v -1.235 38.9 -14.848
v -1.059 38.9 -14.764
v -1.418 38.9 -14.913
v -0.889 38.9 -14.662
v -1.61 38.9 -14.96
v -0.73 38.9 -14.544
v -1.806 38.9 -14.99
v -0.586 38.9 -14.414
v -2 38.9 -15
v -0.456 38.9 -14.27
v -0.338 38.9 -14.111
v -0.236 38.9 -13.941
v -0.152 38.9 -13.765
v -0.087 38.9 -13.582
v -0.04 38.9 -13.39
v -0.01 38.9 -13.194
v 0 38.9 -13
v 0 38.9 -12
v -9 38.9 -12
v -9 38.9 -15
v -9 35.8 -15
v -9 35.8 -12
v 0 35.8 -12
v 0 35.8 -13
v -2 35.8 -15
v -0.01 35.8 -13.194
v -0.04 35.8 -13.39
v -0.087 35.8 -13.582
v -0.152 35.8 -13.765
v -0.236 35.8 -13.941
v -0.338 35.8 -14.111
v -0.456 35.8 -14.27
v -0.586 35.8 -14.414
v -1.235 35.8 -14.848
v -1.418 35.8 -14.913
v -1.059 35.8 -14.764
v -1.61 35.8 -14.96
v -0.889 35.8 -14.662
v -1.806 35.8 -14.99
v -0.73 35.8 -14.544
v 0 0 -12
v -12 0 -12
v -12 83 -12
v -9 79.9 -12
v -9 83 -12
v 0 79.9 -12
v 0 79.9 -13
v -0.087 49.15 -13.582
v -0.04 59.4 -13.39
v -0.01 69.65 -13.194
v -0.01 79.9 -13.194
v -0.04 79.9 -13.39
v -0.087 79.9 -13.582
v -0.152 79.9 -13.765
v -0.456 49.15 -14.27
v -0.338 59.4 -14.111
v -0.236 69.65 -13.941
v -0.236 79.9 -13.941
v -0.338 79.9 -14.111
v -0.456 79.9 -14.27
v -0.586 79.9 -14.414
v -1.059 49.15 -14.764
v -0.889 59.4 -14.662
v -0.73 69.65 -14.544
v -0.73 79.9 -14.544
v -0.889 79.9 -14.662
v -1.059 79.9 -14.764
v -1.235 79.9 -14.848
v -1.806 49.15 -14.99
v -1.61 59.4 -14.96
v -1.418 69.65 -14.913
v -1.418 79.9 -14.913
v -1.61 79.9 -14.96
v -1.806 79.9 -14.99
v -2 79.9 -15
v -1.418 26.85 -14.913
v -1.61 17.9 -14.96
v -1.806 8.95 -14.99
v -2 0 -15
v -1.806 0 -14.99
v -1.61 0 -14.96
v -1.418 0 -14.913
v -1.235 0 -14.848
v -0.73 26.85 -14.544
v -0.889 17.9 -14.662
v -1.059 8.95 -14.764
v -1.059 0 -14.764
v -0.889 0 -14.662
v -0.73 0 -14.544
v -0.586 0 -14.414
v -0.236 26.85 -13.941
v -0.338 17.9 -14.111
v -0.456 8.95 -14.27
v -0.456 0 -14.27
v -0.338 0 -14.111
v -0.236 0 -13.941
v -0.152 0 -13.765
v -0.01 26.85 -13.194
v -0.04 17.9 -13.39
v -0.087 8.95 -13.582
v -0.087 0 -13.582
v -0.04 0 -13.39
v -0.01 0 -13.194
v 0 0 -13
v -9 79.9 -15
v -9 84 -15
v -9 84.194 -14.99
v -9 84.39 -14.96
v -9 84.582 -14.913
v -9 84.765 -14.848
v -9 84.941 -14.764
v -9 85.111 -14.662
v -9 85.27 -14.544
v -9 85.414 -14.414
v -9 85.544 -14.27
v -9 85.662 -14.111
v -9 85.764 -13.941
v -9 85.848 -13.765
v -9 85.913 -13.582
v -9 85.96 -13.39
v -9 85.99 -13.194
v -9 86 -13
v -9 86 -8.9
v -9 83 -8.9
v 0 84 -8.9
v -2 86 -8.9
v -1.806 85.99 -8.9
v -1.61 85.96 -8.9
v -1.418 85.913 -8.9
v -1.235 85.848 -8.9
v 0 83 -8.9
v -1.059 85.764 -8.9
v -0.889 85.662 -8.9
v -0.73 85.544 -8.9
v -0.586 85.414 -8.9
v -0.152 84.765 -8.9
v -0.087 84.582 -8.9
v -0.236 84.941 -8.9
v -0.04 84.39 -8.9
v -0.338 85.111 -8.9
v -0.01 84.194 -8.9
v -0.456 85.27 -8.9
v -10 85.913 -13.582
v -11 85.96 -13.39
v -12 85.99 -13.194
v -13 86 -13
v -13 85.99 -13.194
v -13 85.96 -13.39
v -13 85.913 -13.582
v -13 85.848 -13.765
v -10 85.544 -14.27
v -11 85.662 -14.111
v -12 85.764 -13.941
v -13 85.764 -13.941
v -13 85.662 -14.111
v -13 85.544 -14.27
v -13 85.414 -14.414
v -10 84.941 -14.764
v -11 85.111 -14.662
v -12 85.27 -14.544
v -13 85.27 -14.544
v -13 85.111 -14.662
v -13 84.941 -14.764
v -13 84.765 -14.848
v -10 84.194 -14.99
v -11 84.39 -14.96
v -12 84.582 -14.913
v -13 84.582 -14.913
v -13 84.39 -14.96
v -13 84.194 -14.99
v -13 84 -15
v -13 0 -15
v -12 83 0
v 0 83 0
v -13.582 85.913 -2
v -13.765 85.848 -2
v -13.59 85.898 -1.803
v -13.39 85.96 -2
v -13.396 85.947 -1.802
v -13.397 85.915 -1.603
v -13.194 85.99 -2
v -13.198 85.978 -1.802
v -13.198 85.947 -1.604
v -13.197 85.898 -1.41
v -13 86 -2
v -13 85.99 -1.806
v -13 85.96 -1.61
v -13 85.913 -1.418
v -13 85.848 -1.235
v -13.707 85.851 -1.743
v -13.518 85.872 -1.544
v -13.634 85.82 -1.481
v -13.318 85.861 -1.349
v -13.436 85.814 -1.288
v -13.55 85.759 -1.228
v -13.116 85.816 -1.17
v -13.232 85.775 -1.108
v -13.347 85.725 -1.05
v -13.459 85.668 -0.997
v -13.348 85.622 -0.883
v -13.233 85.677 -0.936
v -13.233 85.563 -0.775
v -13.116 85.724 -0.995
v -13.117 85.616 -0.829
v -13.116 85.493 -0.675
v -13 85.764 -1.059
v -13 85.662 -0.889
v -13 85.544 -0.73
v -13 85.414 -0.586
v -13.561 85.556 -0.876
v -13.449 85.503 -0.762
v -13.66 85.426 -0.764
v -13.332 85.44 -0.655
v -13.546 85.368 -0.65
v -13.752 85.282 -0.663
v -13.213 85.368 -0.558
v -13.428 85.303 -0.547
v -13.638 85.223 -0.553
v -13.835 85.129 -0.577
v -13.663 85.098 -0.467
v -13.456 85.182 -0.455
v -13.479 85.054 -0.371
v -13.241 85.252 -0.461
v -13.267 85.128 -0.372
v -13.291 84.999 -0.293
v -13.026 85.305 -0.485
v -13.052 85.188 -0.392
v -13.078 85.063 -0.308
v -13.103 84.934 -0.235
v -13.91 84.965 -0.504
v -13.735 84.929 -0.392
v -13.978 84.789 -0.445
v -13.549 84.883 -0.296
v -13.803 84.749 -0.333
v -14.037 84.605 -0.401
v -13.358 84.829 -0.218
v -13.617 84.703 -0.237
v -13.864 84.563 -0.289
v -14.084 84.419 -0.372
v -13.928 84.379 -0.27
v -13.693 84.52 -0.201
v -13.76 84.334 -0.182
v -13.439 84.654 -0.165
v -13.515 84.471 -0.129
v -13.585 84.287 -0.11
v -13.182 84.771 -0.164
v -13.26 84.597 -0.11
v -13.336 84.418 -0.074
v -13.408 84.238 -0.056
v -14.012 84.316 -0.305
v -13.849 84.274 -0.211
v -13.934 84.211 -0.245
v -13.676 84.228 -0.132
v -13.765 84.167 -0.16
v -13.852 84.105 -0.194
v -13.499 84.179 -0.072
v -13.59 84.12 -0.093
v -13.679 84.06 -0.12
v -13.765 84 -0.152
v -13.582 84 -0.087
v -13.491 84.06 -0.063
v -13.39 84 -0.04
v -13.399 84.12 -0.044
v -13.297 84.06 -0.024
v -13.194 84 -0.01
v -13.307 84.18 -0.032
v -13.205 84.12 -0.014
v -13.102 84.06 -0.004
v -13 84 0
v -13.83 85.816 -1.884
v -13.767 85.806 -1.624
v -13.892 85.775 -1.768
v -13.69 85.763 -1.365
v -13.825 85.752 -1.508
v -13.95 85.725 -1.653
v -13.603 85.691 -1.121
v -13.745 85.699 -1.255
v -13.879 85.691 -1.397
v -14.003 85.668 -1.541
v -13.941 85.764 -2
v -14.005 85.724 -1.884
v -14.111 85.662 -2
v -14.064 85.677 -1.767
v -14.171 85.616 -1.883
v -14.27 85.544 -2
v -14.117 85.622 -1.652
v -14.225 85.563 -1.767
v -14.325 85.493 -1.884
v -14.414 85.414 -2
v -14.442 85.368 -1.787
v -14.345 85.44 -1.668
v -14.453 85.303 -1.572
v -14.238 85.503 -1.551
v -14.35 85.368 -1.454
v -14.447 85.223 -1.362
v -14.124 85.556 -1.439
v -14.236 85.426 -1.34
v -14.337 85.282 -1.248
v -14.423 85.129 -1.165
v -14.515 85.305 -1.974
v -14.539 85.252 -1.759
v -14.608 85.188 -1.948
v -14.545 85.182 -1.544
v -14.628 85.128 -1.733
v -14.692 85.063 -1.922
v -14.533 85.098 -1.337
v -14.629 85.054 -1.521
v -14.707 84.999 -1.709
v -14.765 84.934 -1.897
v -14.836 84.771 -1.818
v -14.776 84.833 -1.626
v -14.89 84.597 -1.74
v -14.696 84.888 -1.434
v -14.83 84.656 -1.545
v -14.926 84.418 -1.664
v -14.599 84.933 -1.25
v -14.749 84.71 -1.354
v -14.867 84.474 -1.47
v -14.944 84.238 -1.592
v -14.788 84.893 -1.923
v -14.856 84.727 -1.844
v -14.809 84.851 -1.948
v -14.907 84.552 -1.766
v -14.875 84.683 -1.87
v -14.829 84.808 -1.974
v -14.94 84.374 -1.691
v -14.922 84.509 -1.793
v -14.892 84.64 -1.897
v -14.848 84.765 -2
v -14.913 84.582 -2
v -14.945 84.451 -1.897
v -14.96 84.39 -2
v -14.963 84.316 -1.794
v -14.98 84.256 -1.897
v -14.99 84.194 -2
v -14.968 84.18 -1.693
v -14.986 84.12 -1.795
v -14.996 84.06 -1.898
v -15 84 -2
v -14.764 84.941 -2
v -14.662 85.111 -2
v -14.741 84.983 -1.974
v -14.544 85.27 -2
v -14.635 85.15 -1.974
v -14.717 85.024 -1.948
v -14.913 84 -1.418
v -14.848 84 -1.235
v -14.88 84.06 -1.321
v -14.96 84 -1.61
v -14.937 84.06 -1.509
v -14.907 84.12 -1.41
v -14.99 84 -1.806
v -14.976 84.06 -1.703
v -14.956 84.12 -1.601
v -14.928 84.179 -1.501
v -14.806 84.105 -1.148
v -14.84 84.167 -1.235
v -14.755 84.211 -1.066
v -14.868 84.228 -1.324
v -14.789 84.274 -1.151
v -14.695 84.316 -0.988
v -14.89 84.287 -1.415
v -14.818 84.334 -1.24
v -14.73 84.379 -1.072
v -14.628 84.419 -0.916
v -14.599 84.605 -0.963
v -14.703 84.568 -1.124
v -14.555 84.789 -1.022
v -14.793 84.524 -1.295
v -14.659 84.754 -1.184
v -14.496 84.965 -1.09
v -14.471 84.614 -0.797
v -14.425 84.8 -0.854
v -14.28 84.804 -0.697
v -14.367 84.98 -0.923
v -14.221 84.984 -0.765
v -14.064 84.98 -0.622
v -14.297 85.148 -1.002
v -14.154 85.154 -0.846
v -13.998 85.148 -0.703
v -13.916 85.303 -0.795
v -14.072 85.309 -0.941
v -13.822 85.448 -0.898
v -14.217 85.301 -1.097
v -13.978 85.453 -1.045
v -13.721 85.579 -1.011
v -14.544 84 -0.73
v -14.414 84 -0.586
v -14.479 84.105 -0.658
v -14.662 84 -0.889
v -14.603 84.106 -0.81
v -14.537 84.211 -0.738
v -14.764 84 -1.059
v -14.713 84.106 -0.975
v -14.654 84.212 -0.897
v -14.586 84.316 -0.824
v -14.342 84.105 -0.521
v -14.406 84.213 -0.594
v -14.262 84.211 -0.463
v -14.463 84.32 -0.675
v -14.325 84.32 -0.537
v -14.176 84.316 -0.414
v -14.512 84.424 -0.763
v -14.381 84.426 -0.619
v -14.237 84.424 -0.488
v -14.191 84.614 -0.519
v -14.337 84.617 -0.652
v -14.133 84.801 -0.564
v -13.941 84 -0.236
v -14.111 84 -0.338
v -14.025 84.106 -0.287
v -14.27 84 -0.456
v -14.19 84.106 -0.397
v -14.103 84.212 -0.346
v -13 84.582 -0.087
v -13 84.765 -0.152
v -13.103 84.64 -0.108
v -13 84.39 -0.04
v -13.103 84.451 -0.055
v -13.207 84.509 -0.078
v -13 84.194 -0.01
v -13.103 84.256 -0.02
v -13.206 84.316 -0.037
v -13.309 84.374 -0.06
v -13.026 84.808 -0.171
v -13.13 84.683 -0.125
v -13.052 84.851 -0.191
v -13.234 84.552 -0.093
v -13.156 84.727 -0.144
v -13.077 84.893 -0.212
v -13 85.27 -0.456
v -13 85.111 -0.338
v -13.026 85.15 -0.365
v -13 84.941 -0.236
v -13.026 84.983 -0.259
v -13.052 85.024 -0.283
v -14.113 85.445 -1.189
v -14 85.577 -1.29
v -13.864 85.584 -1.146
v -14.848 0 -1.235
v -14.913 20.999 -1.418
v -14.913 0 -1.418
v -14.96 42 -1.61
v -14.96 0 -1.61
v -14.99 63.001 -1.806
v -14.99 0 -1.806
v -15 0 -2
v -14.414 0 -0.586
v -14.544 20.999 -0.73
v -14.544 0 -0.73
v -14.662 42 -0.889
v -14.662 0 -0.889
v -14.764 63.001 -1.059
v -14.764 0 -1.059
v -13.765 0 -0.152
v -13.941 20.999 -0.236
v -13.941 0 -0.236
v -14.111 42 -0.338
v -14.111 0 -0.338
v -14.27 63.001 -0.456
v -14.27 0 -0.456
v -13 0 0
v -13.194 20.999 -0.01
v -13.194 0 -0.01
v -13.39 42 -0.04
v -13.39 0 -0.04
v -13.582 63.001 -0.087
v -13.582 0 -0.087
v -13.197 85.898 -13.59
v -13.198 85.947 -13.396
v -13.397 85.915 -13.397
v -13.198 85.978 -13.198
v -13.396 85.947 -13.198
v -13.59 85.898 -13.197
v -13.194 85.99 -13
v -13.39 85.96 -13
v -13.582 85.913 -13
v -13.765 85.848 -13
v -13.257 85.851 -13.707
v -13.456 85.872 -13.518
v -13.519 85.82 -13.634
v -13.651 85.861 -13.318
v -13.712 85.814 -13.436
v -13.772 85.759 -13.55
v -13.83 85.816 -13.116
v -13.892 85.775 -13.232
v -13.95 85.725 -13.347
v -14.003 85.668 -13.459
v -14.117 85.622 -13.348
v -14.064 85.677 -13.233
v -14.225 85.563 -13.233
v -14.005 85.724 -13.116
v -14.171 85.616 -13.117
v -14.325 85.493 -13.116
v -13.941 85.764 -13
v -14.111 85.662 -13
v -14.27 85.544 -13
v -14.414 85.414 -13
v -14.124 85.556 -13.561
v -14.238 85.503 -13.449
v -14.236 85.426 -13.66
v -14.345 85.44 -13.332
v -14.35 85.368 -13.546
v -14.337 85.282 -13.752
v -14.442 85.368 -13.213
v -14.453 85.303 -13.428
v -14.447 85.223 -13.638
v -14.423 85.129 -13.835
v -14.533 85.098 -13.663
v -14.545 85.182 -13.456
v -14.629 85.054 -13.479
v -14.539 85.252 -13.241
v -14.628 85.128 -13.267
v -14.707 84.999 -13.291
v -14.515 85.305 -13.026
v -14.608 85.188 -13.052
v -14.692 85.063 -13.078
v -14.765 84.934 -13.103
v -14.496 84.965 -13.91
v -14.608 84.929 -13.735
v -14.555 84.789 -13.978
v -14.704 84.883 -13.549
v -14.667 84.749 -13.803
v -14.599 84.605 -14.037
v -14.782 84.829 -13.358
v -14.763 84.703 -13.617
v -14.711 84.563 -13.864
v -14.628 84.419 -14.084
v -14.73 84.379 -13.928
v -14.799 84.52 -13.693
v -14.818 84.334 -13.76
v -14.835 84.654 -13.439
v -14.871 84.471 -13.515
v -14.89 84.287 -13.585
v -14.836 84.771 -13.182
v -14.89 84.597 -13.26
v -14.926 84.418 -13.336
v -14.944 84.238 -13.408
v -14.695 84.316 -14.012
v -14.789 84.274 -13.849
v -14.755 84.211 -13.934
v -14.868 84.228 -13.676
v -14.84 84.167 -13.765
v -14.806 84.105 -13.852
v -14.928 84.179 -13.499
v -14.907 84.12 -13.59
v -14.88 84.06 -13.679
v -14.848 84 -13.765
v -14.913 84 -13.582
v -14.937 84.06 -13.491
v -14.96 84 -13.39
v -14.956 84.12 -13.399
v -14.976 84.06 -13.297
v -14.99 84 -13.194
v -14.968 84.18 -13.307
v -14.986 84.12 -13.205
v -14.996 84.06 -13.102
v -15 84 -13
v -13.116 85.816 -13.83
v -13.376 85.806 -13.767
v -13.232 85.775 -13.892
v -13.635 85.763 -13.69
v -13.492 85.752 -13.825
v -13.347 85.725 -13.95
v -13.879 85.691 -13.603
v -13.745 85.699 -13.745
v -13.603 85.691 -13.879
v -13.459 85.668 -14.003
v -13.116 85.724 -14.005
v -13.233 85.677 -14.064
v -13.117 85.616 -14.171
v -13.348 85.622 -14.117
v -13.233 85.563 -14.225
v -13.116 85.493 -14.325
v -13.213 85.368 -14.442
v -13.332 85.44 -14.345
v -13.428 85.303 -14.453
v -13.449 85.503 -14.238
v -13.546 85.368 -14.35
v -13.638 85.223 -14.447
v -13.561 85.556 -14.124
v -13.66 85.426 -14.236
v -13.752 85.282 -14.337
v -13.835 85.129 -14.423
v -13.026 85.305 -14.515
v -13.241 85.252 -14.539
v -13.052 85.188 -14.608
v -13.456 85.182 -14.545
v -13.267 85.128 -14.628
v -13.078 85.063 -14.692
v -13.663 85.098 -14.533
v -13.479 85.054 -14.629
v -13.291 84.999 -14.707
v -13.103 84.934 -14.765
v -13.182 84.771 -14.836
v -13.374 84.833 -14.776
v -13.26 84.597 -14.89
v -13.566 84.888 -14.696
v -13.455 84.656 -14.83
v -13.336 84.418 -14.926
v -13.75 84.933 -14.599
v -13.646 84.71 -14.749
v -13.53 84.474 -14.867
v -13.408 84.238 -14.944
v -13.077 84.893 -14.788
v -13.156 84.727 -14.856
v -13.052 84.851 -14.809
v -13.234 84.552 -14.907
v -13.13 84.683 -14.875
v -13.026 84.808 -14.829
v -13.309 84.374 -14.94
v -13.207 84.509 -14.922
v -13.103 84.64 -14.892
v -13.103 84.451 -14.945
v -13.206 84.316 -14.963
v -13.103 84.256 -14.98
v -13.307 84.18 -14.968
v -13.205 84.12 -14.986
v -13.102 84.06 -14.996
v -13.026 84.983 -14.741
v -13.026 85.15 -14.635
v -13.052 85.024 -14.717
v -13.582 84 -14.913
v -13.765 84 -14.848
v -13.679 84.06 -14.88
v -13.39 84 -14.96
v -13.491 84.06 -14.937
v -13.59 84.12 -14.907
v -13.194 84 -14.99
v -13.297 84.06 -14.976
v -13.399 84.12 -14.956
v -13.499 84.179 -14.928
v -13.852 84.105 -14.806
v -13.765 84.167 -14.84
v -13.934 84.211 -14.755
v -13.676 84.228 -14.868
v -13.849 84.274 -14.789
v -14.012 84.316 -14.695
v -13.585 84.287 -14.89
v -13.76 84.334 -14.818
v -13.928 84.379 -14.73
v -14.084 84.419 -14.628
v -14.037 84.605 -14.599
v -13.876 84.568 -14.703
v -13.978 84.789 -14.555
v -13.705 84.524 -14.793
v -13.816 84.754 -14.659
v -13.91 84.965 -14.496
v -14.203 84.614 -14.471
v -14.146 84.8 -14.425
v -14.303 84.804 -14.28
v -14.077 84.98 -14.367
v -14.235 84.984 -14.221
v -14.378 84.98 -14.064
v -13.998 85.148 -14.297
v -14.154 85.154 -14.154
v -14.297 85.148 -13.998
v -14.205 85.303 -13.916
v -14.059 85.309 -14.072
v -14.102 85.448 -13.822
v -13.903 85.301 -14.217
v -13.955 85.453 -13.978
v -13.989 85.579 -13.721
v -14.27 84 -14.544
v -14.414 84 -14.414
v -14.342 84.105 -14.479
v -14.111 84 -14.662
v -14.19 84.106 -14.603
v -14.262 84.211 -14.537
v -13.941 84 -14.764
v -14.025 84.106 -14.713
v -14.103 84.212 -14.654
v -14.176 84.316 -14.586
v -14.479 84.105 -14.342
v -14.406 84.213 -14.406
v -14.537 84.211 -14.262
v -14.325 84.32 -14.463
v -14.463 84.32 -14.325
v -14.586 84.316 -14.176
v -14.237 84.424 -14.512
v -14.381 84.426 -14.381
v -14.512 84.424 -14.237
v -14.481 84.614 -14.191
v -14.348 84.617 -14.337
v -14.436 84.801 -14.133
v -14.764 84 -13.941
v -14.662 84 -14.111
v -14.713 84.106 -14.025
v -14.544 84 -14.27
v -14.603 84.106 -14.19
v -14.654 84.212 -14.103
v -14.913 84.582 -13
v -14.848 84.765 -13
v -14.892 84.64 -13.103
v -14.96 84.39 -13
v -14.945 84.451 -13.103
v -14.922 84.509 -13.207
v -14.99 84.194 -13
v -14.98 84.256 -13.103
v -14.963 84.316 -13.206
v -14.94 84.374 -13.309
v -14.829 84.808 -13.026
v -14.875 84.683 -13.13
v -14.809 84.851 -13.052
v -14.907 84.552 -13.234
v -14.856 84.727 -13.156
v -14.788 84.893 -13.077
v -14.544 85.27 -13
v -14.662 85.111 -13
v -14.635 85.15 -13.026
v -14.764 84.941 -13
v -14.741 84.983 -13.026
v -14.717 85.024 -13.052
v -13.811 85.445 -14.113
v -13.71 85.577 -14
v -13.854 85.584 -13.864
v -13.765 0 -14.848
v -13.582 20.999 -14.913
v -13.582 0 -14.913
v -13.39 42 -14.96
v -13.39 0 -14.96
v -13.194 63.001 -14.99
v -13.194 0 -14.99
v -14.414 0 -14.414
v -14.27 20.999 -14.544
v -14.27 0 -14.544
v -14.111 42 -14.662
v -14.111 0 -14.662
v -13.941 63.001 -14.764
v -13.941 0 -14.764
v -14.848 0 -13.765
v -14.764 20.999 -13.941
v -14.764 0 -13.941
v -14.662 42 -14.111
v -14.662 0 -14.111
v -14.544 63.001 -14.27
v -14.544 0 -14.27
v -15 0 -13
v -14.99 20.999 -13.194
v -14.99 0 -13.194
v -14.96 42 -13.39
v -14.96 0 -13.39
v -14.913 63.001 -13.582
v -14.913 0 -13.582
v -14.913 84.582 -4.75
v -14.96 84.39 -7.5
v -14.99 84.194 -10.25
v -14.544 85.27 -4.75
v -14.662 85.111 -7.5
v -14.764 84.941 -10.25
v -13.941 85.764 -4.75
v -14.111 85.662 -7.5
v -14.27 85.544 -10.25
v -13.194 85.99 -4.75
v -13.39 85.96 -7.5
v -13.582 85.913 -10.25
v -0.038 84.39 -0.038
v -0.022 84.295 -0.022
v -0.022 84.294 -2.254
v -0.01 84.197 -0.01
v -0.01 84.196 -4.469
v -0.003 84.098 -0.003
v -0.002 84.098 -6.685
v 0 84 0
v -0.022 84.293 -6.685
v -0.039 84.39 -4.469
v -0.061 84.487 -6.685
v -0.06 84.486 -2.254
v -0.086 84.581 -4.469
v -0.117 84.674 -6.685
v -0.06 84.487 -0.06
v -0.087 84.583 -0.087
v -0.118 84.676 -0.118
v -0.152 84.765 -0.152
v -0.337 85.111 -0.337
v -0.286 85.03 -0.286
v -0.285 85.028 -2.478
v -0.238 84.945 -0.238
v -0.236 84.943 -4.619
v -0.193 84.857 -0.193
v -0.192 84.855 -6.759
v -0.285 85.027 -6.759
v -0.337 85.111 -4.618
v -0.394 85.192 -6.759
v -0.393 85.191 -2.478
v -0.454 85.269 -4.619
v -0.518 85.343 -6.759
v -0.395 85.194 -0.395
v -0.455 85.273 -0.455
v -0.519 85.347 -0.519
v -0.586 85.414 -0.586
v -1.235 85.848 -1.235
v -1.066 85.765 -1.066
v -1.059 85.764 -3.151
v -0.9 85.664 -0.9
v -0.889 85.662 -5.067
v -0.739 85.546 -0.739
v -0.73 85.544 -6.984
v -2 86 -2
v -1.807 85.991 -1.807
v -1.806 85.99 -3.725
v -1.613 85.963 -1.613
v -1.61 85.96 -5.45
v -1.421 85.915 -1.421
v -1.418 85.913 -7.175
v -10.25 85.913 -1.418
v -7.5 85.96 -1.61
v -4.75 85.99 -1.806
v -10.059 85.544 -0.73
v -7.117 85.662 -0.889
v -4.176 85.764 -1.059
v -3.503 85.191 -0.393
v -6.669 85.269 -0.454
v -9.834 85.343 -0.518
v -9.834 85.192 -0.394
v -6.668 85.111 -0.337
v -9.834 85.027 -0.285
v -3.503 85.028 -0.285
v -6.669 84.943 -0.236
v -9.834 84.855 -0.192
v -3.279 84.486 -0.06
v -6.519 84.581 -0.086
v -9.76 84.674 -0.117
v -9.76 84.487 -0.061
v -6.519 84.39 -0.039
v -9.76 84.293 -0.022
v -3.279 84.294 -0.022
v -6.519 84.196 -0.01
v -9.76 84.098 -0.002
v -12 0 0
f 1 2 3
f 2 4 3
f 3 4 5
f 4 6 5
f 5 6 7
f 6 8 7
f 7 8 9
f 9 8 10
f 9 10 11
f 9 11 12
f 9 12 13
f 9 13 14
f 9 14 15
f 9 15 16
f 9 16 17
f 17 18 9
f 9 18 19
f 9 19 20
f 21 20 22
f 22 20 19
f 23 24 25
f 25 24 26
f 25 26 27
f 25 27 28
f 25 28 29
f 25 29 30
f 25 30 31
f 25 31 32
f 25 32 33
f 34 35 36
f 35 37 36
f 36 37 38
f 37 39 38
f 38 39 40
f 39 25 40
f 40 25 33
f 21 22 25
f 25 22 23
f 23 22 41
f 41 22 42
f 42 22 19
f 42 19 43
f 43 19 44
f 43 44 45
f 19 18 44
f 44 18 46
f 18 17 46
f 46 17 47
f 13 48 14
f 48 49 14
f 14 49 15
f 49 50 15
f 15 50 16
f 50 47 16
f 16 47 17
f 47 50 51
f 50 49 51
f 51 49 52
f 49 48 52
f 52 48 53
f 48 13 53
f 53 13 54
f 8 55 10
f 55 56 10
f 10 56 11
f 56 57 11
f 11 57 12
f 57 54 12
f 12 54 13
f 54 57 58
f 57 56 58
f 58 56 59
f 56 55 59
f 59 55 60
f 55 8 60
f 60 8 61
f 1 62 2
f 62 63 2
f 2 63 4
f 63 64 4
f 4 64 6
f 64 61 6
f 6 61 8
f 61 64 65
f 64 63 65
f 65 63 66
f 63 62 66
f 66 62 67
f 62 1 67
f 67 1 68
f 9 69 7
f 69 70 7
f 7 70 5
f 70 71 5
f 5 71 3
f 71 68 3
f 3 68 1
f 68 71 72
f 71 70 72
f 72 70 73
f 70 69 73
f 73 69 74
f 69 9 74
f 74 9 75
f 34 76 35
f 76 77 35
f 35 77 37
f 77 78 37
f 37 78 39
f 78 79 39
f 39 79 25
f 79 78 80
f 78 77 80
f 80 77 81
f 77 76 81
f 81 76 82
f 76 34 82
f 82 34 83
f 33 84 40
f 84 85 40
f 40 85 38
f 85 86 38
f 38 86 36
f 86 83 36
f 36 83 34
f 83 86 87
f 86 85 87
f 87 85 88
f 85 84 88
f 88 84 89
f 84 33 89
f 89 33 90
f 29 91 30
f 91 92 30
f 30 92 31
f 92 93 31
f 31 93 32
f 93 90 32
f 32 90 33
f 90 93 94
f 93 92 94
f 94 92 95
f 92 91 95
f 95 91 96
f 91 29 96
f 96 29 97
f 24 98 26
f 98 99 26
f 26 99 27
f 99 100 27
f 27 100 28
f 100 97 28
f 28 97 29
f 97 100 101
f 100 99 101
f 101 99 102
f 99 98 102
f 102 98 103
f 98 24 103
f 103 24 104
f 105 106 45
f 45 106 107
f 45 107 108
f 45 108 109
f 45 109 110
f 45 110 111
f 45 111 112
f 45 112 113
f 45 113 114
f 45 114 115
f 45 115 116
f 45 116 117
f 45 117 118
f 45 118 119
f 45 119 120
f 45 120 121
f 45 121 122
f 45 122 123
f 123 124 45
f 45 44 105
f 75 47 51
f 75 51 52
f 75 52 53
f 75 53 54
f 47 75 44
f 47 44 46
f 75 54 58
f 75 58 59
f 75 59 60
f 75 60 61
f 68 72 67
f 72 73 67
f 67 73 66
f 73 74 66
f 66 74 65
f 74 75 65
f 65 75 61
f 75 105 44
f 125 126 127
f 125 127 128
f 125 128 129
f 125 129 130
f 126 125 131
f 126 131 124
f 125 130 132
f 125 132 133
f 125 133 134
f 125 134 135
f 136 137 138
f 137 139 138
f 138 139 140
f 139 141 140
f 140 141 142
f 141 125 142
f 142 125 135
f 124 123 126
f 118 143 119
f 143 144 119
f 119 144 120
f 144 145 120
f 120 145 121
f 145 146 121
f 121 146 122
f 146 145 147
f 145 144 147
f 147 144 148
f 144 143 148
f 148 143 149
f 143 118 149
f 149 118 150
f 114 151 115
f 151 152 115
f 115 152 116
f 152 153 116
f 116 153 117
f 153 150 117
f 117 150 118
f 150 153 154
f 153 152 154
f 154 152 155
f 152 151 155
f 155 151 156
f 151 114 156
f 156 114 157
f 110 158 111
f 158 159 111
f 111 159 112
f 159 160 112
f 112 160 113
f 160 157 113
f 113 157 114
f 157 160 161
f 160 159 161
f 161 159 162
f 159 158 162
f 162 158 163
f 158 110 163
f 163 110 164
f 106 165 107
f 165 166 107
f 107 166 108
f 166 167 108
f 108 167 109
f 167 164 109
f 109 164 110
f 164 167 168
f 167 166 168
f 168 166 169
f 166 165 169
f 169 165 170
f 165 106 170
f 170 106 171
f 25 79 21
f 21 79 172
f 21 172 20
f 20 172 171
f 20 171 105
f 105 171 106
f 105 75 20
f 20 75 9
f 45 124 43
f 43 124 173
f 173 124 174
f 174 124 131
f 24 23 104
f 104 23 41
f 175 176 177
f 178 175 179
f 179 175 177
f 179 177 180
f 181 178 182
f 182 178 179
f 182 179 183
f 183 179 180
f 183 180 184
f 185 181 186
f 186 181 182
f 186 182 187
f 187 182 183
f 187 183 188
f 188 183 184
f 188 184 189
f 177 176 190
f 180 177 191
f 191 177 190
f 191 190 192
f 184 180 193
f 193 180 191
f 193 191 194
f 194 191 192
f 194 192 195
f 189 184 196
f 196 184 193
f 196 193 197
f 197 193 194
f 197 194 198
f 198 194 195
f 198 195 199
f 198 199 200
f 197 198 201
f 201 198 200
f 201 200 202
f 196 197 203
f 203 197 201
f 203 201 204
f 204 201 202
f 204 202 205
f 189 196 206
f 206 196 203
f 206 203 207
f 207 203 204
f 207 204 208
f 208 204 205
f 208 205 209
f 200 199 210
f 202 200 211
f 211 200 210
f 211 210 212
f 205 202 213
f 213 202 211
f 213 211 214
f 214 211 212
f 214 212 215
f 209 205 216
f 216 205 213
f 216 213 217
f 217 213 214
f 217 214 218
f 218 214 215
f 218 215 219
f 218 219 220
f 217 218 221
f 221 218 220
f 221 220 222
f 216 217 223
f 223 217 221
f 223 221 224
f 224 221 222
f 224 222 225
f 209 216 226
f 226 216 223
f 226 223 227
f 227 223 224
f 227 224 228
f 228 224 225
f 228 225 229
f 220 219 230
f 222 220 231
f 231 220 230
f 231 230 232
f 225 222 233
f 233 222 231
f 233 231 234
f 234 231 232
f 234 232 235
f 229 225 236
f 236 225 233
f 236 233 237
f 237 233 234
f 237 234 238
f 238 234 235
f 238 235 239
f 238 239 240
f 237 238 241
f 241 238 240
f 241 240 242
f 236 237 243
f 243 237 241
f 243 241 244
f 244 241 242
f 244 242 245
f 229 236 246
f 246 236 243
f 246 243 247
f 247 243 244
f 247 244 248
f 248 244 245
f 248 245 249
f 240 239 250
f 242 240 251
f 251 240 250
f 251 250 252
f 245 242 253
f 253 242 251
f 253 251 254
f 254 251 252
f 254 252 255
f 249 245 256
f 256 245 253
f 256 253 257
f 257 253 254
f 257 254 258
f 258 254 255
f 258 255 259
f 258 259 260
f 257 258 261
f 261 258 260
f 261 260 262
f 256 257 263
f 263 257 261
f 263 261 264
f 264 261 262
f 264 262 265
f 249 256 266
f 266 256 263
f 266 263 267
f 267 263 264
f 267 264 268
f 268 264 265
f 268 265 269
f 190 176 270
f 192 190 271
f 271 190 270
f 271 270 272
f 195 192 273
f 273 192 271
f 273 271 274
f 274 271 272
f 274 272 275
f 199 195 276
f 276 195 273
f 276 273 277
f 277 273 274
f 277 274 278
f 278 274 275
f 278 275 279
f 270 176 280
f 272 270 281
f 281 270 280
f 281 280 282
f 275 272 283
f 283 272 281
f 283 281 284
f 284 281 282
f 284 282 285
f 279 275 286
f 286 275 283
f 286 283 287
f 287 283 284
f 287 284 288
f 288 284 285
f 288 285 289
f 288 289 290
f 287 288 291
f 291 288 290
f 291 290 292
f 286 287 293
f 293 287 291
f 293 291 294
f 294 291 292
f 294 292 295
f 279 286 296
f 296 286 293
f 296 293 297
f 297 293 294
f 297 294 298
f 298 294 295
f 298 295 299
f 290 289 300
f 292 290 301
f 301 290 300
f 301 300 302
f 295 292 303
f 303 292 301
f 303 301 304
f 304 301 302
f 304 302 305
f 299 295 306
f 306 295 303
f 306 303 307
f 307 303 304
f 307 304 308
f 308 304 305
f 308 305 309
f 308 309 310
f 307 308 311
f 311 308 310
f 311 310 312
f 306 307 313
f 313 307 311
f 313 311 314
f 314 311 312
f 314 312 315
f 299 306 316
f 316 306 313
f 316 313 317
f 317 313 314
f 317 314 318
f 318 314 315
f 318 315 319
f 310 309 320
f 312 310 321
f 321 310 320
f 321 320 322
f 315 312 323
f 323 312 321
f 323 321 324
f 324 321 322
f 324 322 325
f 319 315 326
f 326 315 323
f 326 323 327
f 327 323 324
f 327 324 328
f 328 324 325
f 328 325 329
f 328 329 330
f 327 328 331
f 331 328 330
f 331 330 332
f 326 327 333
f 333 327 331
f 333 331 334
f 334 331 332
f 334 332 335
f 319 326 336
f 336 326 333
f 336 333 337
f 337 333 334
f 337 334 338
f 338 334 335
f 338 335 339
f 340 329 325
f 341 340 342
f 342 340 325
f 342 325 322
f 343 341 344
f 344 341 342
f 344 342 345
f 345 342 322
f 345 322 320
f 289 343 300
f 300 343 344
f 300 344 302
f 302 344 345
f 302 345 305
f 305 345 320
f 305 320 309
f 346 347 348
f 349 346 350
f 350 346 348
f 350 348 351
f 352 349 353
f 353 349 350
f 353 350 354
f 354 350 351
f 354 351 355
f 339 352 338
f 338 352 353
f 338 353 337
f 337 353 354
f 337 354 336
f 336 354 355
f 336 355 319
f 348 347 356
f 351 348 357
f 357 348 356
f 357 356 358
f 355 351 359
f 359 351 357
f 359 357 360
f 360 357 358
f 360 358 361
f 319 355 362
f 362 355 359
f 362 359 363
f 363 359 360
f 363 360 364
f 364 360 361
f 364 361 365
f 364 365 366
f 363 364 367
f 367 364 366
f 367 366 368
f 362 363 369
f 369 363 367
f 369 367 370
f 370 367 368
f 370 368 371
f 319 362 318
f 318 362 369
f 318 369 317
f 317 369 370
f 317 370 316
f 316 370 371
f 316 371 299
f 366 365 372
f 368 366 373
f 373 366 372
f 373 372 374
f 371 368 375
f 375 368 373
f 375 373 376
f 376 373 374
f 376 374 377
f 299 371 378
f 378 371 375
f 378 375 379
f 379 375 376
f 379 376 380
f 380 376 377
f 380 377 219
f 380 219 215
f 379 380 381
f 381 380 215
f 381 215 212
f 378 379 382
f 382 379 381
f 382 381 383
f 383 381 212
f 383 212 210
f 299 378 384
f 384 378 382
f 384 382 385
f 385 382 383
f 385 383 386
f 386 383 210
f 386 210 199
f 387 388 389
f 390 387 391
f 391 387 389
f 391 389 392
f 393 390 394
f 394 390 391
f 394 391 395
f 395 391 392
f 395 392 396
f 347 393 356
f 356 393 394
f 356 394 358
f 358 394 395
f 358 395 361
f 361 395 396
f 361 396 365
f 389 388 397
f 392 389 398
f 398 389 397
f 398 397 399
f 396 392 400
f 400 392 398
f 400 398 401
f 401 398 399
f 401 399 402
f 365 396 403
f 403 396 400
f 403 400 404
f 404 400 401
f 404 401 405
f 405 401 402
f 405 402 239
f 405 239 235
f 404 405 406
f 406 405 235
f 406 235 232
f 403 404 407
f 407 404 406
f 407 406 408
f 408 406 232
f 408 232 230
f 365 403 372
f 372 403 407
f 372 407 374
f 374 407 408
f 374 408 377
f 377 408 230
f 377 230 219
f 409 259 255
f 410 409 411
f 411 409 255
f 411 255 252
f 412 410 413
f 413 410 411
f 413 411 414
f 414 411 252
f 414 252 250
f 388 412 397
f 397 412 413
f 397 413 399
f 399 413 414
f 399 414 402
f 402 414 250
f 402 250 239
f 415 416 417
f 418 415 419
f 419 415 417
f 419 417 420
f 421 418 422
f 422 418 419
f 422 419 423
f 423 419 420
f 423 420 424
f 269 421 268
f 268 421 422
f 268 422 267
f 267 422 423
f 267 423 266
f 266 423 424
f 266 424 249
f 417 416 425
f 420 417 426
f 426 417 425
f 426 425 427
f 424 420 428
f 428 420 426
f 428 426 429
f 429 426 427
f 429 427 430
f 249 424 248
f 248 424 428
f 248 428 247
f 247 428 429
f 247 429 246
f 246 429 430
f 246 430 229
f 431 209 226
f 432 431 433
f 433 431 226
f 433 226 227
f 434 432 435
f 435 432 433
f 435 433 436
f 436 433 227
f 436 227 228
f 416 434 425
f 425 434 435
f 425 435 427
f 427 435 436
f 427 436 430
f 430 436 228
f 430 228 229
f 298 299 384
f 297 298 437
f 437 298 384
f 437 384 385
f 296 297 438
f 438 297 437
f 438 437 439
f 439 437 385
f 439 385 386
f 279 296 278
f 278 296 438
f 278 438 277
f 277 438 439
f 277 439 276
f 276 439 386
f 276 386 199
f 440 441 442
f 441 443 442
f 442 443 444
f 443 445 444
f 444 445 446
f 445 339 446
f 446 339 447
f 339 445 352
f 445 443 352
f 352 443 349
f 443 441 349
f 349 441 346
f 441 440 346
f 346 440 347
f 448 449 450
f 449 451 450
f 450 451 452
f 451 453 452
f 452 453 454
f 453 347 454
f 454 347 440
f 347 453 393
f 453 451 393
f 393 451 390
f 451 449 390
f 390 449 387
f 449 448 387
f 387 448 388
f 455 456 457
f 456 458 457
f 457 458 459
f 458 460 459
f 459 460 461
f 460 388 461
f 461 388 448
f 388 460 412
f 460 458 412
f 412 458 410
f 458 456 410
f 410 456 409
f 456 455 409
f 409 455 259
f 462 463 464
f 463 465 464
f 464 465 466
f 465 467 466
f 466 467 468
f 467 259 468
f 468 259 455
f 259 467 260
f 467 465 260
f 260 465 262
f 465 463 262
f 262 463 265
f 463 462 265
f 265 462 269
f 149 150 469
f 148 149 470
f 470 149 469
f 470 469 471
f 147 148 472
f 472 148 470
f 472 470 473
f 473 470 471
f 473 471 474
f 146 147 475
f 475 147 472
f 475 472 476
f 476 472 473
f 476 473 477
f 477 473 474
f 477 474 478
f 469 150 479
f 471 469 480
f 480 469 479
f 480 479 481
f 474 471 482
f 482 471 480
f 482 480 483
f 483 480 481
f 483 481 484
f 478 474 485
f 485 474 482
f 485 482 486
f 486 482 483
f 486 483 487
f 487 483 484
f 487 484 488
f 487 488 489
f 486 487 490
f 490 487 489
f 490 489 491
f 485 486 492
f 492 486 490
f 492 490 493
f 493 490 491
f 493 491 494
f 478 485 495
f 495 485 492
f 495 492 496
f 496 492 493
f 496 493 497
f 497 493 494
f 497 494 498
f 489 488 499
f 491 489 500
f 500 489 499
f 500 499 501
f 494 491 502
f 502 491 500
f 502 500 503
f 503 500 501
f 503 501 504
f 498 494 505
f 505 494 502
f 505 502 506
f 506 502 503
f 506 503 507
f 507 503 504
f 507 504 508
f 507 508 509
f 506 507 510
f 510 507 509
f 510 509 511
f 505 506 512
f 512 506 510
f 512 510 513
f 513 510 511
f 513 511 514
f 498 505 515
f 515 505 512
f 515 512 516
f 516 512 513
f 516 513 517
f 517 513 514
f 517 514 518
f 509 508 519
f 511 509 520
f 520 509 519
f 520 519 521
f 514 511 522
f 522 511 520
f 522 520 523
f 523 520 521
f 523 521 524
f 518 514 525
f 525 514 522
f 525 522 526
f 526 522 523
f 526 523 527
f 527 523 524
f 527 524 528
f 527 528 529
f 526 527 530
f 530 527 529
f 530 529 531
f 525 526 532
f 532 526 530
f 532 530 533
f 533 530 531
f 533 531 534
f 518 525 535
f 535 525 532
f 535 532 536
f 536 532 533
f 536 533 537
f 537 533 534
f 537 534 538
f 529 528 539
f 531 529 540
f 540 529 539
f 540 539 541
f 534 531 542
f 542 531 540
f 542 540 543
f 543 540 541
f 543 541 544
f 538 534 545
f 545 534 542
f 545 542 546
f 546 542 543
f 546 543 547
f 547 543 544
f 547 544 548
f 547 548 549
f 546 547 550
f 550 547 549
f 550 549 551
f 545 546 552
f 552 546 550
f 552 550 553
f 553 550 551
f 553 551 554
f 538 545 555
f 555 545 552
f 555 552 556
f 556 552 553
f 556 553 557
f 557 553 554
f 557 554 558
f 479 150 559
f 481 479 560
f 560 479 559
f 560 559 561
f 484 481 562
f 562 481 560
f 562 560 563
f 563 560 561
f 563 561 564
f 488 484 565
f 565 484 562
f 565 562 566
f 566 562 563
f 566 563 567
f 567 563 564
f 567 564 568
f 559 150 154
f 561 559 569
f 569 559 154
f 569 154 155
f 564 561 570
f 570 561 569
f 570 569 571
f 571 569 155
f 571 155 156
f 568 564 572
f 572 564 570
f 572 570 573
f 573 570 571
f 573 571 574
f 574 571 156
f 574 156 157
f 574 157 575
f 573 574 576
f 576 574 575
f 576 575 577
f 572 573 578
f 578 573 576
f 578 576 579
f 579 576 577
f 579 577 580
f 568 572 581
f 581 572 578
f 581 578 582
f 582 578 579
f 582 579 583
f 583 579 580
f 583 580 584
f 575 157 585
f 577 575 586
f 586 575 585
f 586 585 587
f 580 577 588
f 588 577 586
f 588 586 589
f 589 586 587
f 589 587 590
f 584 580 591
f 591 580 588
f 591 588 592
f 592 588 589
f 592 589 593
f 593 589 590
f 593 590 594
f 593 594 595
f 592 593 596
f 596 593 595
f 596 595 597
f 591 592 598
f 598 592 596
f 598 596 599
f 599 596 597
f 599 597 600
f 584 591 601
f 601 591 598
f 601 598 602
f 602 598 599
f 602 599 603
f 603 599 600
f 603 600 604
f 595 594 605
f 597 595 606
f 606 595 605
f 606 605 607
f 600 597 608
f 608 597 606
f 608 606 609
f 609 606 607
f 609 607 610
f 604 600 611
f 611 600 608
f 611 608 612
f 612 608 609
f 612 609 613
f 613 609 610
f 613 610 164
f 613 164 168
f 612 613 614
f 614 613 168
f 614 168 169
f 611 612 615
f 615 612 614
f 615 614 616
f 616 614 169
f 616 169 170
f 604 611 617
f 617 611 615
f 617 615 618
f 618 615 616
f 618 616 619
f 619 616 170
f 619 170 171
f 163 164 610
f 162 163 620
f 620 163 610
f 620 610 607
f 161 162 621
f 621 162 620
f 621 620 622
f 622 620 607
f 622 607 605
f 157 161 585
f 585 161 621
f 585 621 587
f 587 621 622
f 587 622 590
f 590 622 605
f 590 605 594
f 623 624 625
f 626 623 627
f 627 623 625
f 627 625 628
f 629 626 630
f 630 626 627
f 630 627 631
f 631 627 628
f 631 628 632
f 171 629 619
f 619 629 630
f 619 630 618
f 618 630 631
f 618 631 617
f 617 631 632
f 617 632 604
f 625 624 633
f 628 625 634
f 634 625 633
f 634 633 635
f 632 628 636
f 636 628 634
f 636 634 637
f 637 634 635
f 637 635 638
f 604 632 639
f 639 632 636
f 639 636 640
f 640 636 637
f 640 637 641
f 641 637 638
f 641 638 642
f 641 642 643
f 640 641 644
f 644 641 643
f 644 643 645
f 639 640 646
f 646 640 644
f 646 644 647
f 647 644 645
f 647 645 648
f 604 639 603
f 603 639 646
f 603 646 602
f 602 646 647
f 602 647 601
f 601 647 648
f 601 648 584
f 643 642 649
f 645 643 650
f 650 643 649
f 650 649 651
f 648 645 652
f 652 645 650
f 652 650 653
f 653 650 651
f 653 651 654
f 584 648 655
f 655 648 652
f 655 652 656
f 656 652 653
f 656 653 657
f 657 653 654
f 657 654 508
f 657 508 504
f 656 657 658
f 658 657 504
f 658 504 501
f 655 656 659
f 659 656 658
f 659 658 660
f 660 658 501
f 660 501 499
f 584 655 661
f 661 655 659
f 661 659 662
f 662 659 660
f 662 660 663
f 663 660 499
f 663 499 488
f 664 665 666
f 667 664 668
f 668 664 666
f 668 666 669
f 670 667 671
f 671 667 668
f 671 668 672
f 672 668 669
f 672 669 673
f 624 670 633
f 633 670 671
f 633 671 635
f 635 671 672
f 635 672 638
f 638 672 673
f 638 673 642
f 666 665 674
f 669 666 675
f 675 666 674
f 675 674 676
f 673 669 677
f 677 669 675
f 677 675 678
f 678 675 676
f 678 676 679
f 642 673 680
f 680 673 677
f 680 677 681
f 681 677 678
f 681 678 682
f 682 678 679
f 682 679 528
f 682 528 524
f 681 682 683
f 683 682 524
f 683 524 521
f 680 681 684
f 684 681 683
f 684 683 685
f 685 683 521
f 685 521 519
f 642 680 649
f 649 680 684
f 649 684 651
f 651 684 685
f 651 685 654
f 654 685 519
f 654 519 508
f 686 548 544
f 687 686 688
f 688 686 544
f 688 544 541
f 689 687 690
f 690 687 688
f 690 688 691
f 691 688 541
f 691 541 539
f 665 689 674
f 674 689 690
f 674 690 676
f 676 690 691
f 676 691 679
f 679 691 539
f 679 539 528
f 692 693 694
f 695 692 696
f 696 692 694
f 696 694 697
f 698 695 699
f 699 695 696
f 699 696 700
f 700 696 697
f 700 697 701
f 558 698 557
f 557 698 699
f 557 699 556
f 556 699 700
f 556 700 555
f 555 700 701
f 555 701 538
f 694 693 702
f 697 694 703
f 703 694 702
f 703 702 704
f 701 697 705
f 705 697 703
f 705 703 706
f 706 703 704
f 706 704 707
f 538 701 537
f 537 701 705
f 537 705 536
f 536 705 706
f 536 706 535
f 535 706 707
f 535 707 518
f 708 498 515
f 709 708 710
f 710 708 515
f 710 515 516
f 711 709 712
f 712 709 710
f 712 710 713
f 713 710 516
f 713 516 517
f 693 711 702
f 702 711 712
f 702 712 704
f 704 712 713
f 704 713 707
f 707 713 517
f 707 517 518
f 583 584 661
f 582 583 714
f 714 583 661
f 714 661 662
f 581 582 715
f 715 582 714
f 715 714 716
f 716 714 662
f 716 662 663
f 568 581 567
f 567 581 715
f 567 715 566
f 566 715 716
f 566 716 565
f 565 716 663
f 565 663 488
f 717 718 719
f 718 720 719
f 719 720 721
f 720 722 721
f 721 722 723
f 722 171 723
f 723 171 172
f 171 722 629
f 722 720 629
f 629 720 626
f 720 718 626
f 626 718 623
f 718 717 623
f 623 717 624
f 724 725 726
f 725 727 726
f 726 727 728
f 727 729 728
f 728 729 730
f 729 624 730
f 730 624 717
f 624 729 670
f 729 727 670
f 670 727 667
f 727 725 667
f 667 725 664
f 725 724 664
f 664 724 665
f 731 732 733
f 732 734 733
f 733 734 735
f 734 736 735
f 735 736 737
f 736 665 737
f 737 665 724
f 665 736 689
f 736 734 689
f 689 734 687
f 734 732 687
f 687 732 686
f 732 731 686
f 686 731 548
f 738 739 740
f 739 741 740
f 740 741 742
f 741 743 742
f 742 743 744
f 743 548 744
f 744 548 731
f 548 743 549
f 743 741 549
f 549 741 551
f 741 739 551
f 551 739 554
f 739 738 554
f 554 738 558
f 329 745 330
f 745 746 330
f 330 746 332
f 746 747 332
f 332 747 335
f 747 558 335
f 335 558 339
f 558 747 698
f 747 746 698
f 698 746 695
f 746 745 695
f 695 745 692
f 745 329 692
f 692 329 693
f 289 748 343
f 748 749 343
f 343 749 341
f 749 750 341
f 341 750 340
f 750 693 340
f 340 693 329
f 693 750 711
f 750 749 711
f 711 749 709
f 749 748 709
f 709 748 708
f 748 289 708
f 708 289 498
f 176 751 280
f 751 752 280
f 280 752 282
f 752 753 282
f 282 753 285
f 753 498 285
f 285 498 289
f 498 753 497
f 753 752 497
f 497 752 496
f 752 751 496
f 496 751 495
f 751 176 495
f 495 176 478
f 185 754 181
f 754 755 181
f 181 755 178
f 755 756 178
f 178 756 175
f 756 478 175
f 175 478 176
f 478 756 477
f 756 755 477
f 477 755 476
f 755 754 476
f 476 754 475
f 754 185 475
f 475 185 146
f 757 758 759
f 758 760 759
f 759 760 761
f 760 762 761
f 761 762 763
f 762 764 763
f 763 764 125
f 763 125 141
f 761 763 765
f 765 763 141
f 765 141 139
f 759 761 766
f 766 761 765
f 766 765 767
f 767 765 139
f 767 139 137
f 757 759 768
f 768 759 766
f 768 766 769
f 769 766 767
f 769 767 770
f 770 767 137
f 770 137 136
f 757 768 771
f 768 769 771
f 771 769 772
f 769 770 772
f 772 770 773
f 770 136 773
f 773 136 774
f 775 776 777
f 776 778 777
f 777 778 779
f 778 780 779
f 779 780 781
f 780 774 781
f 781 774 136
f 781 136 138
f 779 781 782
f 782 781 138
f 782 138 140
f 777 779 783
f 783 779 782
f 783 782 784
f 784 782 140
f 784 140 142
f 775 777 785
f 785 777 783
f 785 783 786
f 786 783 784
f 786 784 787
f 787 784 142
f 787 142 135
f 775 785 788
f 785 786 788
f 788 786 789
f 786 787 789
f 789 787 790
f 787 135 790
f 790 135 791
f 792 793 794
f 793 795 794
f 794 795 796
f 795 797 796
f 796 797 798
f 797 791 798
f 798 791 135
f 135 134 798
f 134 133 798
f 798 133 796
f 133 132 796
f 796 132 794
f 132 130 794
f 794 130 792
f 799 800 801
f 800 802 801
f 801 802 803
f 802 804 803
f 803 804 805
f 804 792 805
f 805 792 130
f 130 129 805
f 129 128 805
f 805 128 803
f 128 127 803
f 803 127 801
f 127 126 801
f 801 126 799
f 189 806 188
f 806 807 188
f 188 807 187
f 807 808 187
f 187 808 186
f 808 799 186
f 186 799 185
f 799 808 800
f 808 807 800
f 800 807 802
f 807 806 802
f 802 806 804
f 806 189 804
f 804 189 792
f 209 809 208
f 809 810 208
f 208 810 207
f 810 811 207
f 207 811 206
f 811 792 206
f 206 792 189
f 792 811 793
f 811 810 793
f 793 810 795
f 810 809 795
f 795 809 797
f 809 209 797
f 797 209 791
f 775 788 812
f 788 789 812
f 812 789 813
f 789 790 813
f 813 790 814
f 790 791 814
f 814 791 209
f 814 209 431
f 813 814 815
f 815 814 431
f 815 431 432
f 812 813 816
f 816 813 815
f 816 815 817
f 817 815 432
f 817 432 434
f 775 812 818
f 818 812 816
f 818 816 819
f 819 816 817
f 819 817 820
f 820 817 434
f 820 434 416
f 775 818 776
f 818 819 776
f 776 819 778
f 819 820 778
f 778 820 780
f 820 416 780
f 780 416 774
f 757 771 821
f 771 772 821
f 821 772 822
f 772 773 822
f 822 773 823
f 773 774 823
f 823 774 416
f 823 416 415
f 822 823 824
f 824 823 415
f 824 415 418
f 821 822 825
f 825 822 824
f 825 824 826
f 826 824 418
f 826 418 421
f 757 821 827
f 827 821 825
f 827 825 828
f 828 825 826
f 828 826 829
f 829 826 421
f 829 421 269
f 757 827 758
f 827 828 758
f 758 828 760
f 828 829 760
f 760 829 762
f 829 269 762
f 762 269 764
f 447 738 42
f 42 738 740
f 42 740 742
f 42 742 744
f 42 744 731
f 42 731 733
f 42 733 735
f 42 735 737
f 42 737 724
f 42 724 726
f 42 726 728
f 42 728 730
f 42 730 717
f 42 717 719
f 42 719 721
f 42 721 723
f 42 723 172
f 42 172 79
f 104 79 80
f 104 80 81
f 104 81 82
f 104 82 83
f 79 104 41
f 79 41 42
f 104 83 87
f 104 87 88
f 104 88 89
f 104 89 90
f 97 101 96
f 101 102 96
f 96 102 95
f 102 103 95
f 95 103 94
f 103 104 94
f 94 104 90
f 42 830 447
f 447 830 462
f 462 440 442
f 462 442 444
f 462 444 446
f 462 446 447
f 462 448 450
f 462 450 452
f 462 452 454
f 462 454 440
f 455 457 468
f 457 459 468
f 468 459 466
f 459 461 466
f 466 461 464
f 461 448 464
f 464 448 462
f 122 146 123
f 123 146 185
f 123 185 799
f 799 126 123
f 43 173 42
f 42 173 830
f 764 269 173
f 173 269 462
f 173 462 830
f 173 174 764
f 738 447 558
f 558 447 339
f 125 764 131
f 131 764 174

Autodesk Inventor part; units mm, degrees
ref_plane "YZ Plane" through (0, 0, 0) normal (1, 0, 0) x (0, 1, 0)
ref_plane "XZ Plane" through (0, 0, 0) normal (0, 1, 0) x (-1, 0, 0)
ref_plane "XY Plane" through (0, 0, 0) normal (0, 0, 1) x (1, 0, 0)
sketch "Sketch1" plane through (0, 0, 0) normal (0, 1, 0) x (-1, 0, 0)
  line L0 (15, 0) -> (15, -15)
  line L1 (15, -15) -> (0, -15)
  line L2 (0, -15) -> (0, -12)
  line L3 (0, -12) -> (12, -12)
  line L4 (12, -12) -> (12, 0)
  line L5 (12, 0) -> (15, 0)
  point P0 (0, 0)
  dimension "d0" = 15
  dimension "d1" = 15
  dimension "d10" = 3
  dimension "d11" = 12
  dimension "d12" = 12
extrude "Extrusion1" add sketch "Sketch1" along normal blind 86
sketch "Sketch4" plane through (-12, 0, 0) normal (1, 0, 0) x (0, 0, -1)
  line L0 (0, 0) -> (0, 86) projected
  line L1 (12, 0) -> (12, 86) projected
  line L2 (0, 86) -> (12, 86)
  line L3 (12, 86) -> (12, 83)
  line L4 (12, 83) -> (0, 83)
  line L5 (0, 83) -> (0, 86)
  dimension "d13" = 3
extrude "Extrusion3" add sketch "Sketch4" along normal blind 3
sketch "Sketch6" plane through (-12, 0, -12) normal (0, 0, 1) x (1, 0, 0)
  line L0 (3, 86) -> (12, 86) projected
  line L1 (12, 86) -> (3, 86)
  line L2 (3, 86) -> (3, 83)
  line L3 (3, 83) -> (12, 83)
  line L4 (12, 83) -> (12, 86)
  point P0 (12, 0)
extrude "Extrusion4" add sketch "Sketch6" along normal blind 12
fillet "Fillet3" radius 2 7 edges at (-7.5, 86, -15) (-15, 86, -7.5) (-15, 43, -15) (0, 43, -15) (-7.5, 86, 0) (0, 86, -7.5) (-15, 43, 0)
sketch "Sketch11" plane through (0, 86, 0) normal (0, 1, 0) x (1, 0, 0)
  arc A0 (-15, 2) -> (-13, 0) centre (-13, 2) ccw projected
  line L0 (0, 10.8348) -> (0, 14)
  line L1 (0, 9) -> (0, 10.8348)
  line L2 (-9, 15) -> (0, 15)
  line L3 (0, 15) -> (0, 9)
  line L4 (-9, 15) -> (-9, 9)
  line L5 (-9, 9) -> (-9, 8.9)
  line L6 (-9, 8.9) -> (0, 8.9)
  line L7 (0, 8.9) -> (0, 9)
  point P0 (-13, 0)
  point P1 (0, 15)
extrude "Extrusion7" cut sketch "Sketch11" against normal blind 6.1
sketch "Sketch12" plane through (-12, 0, -12) normal (0, 0, 1) x (1, 0, 0)
  line L0 (12, 33) -> (21, 33) construction
  line L1 (3, 38.9) -> (3, 35.8)
  line L2 (3, 35.8) -> (12, 35.8)
  line L3 (3, 35.8) -> (12, 35.8) construction
  line L4 (12, 35.8) -> (12, 38.9)
  line L5 (12, 79.9) -> (12, 0) projected
  line L6 (12, 38.9) -> (3, 38.9)
  dimension "d49" = 3.1
extrude "Extrusion8" cut sketch "Sketch12" against normal through all
properties part number "DoosjeHoeken" material "ABS Plastic"
